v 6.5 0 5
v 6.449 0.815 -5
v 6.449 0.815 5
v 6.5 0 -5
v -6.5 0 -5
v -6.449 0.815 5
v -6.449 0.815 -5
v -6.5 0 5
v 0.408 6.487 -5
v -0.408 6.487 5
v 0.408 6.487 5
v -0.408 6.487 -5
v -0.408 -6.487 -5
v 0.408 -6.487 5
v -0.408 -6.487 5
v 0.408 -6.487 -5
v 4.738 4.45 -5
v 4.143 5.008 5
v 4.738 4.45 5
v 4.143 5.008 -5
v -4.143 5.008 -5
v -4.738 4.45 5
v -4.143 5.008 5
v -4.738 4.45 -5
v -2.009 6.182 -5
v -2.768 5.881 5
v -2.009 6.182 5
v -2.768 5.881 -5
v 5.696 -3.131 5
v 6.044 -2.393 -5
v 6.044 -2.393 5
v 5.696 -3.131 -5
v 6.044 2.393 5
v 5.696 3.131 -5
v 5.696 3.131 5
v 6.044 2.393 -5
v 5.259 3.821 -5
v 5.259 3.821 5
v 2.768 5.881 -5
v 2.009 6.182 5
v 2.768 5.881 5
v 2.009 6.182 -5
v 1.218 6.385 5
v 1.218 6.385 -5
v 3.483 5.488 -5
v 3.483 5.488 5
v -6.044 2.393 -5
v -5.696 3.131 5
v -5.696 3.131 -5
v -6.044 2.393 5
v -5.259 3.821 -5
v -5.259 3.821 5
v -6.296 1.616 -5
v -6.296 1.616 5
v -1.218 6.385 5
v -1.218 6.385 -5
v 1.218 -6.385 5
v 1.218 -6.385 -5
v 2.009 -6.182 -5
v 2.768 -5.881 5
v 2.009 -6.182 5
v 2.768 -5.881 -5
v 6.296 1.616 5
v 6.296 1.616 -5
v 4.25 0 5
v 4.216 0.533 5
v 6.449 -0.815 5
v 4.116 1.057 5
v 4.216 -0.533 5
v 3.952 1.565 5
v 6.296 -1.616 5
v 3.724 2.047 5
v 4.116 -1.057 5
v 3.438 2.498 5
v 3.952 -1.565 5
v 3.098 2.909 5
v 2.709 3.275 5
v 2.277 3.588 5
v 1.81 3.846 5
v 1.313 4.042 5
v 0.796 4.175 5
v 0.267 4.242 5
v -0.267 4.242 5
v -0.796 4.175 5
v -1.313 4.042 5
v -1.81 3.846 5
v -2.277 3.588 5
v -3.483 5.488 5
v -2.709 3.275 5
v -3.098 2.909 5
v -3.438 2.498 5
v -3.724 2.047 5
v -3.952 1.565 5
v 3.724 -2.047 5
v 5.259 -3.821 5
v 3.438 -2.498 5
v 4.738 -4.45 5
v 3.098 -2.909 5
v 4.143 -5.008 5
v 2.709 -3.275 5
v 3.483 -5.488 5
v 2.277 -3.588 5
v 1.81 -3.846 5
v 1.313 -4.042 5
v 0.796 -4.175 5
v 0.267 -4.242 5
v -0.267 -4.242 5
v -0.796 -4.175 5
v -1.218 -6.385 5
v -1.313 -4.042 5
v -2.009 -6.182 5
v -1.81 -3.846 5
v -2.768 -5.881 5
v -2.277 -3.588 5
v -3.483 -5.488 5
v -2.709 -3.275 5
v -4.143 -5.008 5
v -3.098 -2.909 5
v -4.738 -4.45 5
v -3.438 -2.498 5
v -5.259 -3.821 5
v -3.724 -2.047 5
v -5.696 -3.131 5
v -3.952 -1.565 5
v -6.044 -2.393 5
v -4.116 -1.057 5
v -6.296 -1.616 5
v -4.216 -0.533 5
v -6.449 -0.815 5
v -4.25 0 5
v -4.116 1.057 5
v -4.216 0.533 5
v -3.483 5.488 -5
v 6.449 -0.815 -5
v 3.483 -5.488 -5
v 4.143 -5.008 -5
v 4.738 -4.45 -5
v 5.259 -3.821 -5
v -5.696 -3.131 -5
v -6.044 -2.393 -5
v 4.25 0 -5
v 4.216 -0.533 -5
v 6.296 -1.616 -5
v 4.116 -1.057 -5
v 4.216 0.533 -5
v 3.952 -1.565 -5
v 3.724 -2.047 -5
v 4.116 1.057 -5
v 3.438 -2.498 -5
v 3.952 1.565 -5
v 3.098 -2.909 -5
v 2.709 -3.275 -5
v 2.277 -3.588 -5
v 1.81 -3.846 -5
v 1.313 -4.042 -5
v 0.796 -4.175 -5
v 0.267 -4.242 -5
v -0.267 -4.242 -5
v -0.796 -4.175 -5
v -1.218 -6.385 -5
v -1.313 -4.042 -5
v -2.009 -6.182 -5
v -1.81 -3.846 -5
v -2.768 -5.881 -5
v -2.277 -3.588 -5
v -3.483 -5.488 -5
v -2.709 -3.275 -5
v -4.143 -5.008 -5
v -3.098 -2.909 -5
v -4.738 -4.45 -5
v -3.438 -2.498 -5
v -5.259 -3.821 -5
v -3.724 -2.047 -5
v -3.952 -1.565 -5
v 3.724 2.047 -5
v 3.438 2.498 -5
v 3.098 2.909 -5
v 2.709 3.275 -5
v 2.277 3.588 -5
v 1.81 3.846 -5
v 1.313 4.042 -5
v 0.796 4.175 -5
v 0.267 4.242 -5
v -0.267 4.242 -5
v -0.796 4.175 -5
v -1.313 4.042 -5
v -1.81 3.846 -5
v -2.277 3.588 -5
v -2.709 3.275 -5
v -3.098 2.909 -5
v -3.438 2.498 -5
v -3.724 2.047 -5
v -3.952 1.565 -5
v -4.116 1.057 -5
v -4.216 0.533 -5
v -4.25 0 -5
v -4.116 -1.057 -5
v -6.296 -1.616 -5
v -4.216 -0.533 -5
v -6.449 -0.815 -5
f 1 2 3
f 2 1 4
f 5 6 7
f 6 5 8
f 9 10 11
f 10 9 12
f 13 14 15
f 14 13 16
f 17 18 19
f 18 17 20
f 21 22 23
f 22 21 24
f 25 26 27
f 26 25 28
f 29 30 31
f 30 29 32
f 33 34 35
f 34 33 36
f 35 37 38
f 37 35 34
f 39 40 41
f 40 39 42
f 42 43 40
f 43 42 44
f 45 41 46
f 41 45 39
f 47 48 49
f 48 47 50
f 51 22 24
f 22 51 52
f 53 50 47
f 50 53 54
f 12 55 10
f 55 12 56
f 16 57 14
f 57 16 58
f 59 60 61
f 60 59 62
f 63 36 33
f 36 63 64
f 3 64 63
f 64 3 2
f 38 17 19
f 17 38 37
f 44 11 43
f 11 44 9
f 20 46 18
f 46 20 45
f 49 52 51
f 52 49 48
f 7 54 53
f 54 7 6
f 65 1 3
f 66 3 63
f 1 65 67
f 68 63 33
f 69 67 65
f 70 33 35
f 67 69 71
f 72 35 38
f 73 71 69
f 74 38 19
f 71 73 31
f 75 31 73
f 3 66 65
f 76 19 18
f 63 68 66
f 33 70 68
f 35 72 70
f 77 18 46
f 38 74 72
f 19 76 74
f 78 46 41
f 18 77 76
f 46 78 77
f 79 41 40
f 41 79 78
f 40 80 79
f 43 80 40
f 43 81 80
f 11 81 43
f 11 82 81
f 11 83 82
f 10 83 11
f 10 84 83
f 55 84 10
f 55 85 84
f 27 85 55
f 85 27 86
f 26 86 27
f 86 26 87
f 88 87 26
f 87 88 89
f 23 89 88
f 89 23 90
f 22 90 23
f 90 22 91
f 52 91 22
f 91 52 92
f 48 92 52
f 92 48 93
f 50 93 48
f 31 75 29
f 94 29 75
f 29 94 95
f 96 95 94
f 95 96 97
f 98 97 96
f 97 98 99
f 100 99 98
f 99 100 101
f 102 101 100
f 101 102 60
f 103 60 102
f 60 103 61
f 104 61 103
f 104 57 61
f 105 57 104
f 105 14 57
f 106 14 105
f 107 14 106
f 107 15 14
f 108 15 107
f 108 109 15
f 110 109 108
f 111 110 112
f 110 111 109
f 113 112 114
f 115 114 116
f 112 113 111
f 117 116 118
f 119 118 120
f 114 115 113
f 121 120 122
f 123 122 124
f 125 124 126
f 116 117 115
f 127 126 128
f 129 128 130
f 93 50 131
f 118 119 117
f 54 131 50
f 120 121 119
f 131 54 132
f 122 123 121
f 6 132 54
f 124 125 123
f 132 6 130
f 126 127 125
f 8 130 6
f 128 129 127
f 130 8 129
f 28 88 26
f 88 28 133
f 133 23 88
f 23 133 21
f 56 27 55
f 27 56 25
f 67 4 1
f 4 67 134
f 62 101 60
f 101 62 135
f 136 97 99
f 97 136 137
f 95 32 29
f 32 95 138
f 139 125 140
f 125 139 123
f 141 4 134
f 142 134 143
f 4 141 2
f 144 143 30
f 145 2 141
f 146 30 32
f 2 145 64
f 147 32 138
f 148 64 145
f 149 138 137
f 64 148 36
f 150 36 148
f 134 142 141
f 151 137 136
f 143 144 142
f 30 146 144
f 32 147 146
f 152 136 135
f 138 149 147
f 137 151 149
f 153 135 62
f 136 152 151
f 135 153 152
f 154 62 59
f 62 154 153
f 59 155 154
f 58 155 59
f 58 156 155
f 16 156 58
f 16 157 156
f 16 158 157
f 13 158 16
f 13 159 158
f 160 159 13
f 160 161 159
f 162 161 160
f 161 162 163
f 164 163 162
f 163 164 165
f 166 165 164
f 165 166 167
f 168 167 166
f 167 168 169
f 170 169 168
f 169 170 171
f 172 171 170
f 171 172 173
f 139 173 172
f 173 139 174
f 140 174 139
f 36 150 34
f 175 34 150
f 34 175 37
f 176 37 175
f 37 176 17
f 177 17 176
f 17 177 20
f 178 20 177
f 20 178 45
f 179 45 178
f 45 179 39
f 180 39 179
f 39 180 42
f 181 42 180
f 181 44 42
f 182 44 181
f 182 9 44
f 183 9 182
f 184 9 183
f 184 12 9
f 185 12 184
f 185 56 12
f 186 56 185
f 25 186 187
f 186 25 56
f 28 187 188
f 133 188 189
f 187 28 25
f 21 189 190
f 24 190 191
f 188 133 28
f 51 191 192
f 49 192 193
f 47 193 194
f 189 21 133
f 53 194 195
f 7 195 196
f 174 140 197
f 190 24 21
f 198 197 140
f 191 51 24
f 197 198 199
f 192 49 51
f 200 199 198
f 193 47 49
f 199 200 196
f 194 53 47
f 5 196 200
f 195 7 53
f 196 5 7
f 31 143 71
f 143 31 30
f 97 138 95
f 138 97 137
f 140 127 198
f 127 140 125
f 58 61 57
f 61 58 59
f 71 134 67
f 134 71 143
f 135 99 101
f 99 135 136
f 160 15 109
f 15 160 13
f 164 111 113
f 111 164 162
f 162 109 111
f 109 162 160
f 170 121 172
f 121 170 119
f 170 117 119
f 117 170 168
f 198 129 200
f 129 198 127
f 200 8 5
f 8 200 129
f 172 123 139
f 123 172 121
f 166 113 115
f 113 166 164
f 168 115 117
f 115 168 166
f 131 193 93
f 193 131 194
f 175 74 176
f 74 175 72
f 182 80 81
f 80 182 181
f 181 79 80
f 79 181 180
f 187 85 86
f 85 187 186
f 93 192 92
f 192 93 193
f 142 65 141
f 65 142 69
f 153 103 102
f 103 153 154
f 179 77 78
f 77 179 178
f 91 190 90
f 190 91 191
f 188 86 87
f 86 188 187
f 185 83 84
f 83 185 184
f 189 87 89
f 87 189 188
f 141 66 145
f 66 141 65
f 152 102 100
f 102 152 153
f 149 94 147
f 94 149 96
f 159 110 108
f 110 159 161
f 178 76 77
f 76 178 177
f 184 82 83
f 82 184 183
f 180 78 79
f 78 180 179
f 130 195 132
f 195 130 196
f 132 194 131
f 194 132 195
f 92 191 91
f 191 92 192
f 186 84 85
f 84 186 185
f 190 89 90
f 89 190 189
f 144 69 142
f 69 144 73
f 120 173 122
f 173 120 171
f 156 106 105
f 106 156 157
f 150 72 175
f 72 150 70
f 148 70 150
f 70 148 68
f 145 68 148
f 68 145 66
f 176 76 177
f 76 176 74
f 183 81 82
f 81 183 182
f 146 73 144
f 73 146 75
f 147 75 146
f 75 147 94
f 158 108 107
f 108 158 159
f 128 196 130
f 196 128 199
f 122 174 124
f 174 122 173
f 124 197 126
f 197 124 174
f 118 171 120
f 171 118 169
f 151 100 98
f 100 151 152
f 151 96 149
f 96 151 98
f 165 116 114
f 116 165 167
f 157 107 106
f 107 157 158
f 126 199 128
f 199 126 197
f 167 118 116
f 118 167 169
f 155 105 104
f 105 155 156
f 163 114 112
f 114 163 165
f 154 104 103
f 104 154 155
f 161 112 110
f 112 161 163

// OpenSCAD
$fn = 50;


difference() {
	union() {
		translate(v = [0, 0, -5.0000000000]) {
			cylinder(h = 10, r = 6.5000000000);
		}
	}
	union() {
		translate(v = [0, 0, -100.0000000000]) {
			cylinder(h = 200, r = 4.2500000000);
		}
	}
}
